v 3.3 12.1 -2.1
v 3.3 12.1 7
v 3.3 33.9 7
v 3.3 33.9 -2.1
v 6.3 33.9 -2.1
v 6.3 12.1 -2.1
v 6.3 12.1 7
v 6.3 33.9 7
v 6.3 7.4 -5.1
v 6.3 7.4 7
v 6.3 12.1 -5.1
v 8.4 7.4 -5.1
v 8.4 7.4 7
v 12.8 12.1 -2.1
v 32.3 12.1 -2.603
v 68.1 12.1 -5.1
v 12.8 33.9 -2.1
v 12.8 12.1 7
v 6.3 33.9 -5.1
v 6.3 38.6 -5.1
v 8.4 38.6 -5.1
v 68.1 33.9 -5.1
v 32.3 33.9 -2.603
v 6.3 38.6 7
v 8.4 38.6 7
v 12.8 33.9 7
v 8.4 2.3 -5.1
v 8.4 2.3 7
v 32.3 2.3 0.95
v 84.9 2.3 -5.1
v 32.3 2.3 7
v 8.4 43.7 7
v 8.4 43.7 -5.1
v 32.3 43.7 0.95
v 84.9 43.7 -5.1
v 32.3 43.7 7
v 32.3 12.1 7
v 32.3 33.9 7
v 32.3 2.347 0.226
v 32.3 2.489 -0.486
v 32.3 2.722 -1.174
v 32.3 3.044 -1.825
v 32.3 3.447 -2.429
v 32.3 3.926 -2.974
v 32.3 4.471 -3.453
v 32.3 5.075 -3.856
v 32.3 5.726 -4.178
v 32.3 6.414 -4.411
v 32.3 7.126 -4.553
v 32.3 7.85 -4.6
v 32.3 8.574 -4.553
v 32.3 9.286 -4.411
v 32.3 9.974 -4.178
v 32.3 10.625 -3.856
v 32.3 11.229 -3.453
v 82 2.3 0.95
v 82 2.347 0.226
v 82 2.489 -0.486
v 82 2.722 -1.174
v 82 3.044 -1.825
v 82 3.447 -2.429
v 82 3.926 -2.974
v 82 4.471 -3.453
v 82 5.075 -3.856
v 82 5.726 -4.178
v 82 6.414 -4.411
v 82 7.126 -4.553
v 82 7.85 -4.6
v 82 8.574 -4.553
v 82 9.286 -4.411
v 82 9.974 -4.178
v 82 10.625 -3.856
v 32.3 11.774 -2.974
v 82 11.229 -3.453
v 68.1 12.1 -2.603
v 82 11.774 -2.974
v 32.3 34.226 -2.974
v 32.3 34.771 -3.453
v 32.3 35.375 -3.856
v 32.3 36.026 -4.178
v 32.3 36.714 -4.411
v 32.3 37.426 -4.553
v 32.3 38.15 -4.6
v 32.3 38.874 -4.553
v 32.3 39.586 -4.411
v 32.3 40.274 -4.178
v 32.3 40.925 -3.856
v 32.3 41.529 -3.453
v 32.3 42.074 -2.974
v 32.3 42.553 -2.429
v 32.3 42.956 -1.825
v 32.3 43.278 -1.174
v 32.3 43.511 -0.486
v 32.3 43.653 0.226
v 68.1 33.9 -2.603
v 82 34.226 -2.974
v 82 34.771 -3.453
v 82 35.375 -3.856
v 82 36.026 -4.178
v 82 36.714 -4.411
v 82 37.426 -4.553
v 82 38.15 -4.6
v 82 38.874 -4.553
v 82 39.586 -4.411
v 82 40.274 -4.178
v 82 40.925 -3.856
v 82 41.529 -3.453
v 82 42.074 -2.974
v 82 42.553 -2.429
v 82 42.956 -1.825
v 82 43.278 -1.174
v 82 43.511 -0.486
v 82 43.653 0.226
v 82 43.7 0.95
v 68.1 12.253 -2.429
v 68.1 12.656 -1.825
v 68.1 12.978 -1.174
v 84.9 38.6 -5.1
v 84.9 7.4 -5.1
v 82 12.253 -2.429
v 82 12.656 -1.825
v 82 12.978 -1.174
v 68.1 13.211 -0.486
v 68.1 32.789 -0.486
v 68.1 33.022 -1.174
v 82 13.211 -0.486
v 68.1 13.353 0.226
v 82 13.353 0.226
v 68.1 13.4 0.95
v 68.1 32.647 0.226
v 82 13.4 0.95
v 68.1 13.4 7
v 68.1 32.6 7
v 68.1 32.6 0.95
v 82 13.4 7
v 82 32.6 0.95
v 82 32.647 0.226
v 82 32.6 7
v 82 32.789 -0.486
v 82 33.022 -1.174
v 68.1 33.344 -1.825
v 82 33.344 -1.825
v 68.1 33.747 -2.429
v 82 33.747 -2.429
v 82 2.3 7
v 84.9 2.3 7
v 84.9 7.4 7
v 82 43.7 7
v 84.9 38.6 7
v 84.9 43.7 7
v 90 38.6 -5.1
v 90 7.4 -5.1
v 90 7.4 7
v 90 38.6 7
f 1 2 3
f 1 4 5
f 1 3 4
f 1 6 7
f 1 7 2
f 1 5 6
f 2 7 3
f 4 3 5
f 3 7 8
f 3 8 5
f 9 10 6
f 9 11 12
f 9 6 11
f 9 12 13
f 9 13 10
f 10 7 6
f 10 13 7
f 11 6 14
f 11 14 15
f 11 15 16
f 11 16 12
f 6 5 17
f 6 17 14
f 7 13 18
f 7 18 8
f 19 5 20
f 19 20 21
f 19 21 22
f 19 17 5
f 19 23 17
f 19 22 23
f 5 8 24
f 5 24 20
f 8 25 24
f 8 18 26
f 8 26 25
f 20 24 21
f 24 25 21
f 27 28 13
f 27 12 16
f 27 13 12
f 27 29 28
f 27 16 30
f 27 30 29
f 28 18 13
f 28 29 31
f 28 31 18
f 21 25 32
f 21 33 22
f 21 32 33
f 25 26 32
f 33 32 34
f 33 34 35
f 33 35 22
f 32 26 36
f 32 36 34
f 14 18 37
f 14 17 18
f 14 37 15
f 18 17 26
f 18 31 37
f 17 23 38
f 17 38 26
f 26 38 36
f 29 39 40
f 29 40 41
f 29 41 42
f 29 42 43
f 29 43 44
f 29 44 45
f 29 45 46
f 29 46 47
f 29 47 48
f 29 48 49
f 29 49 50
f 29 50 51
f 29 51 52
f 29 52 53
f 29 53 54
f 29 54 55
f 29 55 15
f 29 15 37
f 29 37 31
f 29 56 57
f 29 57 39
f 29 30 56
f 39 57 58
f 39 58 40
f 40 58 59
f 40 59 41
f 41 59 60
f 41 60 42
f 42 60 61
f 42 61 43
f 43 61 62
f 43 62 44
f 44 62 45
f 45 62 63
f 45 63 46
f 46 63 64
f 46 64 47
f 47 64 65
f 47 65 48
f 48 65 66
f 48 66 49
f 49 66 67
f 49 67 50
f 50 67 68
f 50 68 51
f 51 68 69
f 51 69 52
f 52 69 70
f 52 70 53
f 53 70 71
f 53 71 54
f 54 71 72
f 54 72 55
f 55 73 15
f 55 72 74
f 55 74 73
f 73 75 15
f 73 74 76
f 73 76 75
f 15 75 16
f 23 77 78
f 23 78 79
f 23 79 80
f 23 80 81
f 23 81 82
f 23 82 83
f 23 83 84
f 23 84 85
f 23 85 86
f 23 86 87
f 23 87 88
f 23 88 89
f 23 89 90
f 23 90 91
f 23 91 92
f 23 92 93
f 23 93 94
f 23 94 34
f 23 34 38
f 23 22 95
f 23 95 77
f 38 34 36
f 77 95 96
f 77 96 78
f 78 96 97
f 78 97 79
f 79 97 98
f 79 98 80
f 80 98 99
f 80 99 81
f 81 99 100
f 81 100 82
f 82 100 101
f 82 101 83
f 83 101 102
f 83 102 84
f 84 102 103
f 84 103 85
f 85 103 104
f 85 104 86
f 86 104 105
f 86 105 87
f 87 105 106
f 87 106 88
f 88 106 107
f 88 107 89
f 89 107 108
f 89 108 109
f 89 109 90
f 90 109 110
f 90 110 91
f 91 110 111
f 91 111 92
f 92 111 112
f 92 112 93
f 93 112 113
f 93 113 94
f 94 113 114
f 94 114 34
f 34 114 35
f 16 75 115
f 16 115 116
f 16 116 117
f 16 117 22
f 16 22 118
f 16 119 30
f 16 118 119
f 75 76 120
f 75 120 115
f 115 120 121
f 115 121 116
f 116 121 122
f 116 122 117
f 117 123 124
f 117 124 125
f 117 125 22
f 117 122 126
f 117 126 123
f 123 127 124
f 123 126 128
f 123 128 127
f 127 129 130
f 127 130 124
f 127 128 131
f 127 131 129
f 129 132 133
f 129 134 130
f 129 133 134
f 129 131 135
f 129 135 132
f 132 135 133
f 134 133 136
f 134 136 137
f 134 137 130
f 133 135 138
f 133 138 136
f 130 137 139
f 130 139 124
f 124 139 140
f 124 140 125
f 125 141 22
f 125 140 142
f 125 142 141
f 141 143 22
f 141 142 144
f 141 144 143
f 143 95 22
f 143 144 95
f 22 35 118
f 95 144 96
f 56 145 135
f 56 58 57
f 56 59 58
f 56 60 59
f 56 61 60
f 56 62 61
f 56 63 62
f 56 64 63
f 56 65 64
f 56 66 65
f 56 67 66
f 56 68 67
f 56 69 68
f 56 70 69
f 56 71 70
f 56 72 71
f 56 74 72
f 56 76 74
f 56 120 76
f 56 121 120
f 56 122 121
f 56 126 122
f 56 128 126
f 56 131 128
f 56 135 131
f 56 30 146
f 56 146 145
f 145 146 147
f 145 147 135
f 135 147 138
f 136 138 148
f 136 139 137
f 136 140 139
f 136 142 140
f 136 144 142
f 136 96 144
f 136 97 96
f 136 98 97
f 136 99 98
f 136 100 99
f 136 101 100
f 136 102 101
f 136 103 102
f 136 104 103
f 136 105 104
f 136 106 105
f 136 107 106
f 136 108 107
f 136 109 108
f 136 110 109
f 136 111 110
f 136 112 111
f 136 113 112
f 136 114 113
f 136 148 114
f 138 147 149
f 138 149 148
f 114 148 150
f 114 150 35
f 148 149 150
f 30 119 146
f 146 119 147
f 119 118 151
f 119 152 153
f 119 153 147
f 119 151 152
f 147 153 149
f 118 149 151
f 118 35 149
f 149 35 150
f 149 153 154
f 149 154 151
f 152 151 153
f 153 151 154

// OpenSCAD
// Dilder Rev 2 "extended with joystick" — AAA CRADLE INSERT v1
//
// A drop-in plug shaped like the NEGATIVE SPACE of top-cover-windowed-
// screen-inlay-v3-2piece's interior. Slides up into the cover's mating
// bottom; top surface lands flush against the face-plate/display-back
// plane at cover-local z = 7 ("the plane of the screen face").
//
// Features carved INTO the plug:
//   - 3 mm-wide FPC gap on the -X (opposite-the-joystick) edge, full Y
//     and full Z, so the display's FPC cable can exit toward -X.
//   - 2 AAA cell indentations laid along X, stacked in Y, pushed to the
//     +X (joystick-side) end of the plug.
//   - Central rectangular cutout that lets the Pico W nest up against
//     the Waveshare's back, between the two AAA cells.
//
// Plug height is set by the AAA diameter (10.5 mm + 0.3 slop per side →
// 11.1 mm bay) rather than the cover's 7 mm inner cavity — so the plug
// is TALLER than the cover's cavity. Its top 7 mm slide into the cover
// cavity; the bottom 4.6 mm extends BELOW the cover mating plane, into
// the base's Pico-chamber region (Y = 12.1–33.9), which is open there.
//
// Export:
//   openscad -o aaa-cradle-insert-v1.3mf aaa-cradle-insert-v1.scad

$fn = 48;

// ============================================================
// Match the cover / base shell parameters
// ============================================================
enclosure_outer_width_along_x_axis_mm          = 91.5;
enclosure_outer_depth_along_y_axis_mm          = 46;
minus_x_end_wall_thickness_mm                  = 3.0;
plus_x_end_wall_thickness_mm                   = 1.2;
perimeter_long_side_wall_thickness_y_mm_base   = 2;
corner_pillar_square_side_length_mm            = 5;

// Cover cavity inner bounds (the space the plug fills)
cavity_inner_x_start_mm = minus_x_end_wall_thickness_mm;                         // = 3.0
cavity_inner_x_end_mm =
    enclosure_outer_width_along_x_axis_mm
      - plus_x_end_wall_thickness_mm;                                            // = 90.3
cavity_inner_y_start_mm = perimeter_long_side_wall_thickness_y_mm_base;          // = 2.0
cavity_inner_y_end_mm =
    enclosure_outer_depth_along_y_axis_mm
      - perimeter_long_side_wall_thickness_y_mm_base;                            // = 44.0

// Plug outer footprint = cavity − a tiny slide-in slop on every wall.
plug_wall_slop_mm                              = 0.3;
plug_x_start_mm = cavity_inner_x_start_mm + plug_wall_slop_mm;                   // = 3.3
plug_x_end_mm   = cavity_inner_x_end_mm   - plug_wall_slop_mm;                   // = 90.0
plug_y_start_mm = cavity_inner_y_start_mm + plug_wall_slop_mm;                   // = 2.3
plug_y_end_mm   = cavity_inner_y_end_mm   - plug_wall_slop_mm;                   // = 43.7

// ============================================================
// Plug Z — top meets the face-plate bottom (= display back = "plane of
// screen face"), bottom extends below cover mating bottom as needed to
// fully cradle the AAAs.
// ============================================================
face_plate_bottom_z_in_cover_local_mm          = 7;     // from cover-v3-2piece
aaa_cell_diameter_mm                           = 10.5;
aaa_cell_radial_slop_mm                        = 0.3;
aaa_bay_diameter_mm =
    aaa_cell_diameter_mm + 2 * aaa_cell_radial_slop_mm;  // = 11.1
aaa_bay_wall_above_and_below_mm                = 0.5;    // min wall at ±Z of cell

plug_thickness_mm =
    aaa_bay_diameter_mm + 2 * aaa_bay_wall_above_and_below_mm;  // = 12.1
plug_top_z_mm = face_plate_bottom_z_in_cover_local_mm;          // = 7
plug_bottom_z_mm = plug_top_z_mm - plug_thickness_mm;           // = -5.1 (extends
                                                                 // into base below)

// ============================================================
// AAA cells — 2 cells laying along X, stacked in Y, both pushed to
// +X (the joystick side). Cell-to-cell divider 1 mm thick.
// ============================================================
aaa_cell_length_mm                             = 44.5;
aaa_cell_axial_slop_mm                         = 1.0;
aaa_cell_contact_space_per_end_mm              = 2.0;
aaa_bay_length_along_x_mm =
    aaa_cell_length_mm
      + 2 * aaa_cell_contact_space_per_end_mm
      + aaa_cell_axial_slop_mm;                          // = 49.5

// +X end of the bay is pulled 3 mm -X past the +X corner-pillar
// cutout's -X edge, so the bays don't run into the pillar footprint.
plus_x_pillar_cutout_minus_x_edge_mm =
    (enclosure_outer_width_along_x_axis_mm
       - plus_x_end_wall_thickness_mm
       - corner_pillar_square_side_length_mm)
      - 0.4;                                                                      // = 84.9 (slop applied below)
aaa_bay_gap_from_pillar_cutout_mm              = 3.0;
aaa_bay_plus_x_end_mm =
    plus_x_pillar_cutout_minus_x_edge_mm
      - aaa_bay_gap_from_pillar_cutout_mm;                                         // = 81.9
aaa_bay_minus_x_start_mm =
    aaa_bay_plus_x_end_mm - aaa_bay_length_along_x_mm;                             // = 32.4

// Bays pushed apart until each cell's outer surface touches the plug's
// long-side edge. Cover / base inner wall provides +/-Y retention
// outside the plug.
aaa_bay_minus_y_center_y_mm =
    plug_y_start_mm + aaa_bay_diameter_mm / 2;                                     // = 7.85
aaa_bay_plus_y_center_y_mm =
    plug_y_end_mm - aaa_bay_diameter_mm / 2;                                       // = 38.15
aaa_bay_center_z_mm =
    (plug_top_z_mm + plug_bottom_z_mm) / 2;                                        // ≈ 0.95

// Top-open cut: the plug material from the cell's equator up through
// the plug top gets removed in each bay's XY bounding box, so the cell
// can be placed INTO the bay from above rather than slid in end-on.
aaa_bay_top_open_z_bottom_mm                   = aaa_bay_center_z_mm;
aaa_bay_top_open_z_top_mm                      = plug_top_z_mm + 0.1;

// ============================================================
// FPC gap — 3 mm of -X edge material shaved off, full Y, full plug Z,
// so the display's FPC cable can exit straight toward -X.
// ============================================================
fpc_gap_width_along_x_mm                       = 3;

// ============================================================
// Pico nest — central rectangular cutout from the TOP of the plug
// downward. Gives the Pico W somewhere to sit against the Waveshare's
// back (between the two AAA cells).
// ============================================================
pico_w_board_width_along_y_mm                  = 21.0;
// Pico nest length reduced 10 mm (from 51 to 41) so the middle block
// doesn't eat quite as far +X into the plug.
pico_w_board_length_along_x_mm                 = 61.0;
print_fit_tolerance_slop_mm                    = 0.4;
pico_nest_width_along_y_mm =
    pico_w_board_width_along_y_mm + 2 * print_fit_tolerance_slop_mm;              // = 21.8
pico_nest_length_along_x_mm =
    pico_w_board_length_along_x_mm + 2 * print_fit_tolerance_slop_mm;             // = 51.8
// Pico board + its tallest stacked components (headers) — full plug Z
// so the Pico nests all the way through vertically, free to sit against
// the Waveshare's back above and extend down toward the base below.
pico_nest_depth_along_z_mm                     = plug_thickness_mm;

// Pico nest is X-centered between the FPC gap and the AAA bays (so the
// Pico sits in the middle of the -X / +X extent of the plug).
pico_nest_x_region_start_mm =
    plug_x_start_mm + fpc_gap_width_along_x_mm;                                   // = 6.3
pico_nest_x_region_end_mm   = aaa_bay_minus_x_start_mm;                           // = 40.5
pico_nest_x_start_mm =
    (pico_nest_x_region_start_mm + pico_nest_x_region_end_mm) / 2
      - pico_nest_length_along_x_mm / 2;                                          // = -2.5 (overshoots)
// If the Pico's 51.8 mm footprint doesn't fit between the FPC gap end
// (x = 6.3) and the AAA bays' -X start (x = 40.5 → 34.2 mm of X), the
// nest gets clamped to start at the FPC gap end and extends as far +X
// as the board needs. The Pico ends up passing UNDER the AAA bays'
// footprint; since the bay pockets are higher in Z than the Pico nest
// bottom, that's fine — the Pico's -X end fills the plug's center and
// its +X end slides under the AAA bays.
pico_nest_x_start_clamped_mm =
    max(pico_nest_x_start_mm, pico_nest_x_region_start_mm);
pico_nest_y_start_mm =
    enclosure_outer_depth_along_y_axis_mm / 2
      - pico_nest_width_along_y_mm / 2;                                           // = 12.1

// ============================================================
// -X middle inset — a shallow pocket on the -X end of the plug's long
// axis, mirroring the Pico-nest footprint but only 9.5 mm long in X
// and 3 mm shorter in height than the full plug so it's a blind pocket
// rather than a through-slot. Opens from the top.
// ============================================================
minus_x_inset_length_along_x_mm                = 9.5;
minus_x_inset_height_reduction_from_plug_mm    = 3.0;
minus_x_inset_depth_along_z_mm =
    plug_thickness_mm - minus_x_inset_height_reduction_from_plug_mm;               // = 9.1
minus_x_inset_x_start_mm                       = plug_x_start_mm;                  // = 3.3
minus_x_inset_x_end_mm =
    minus_x_inset_x_start_mm + minus_x_inset_length_along_x_mm;                    // = 12.8
minus_x_inset_y_start_mm                       = pico_nest_y_start_mm;             // = 12.1
minus_x_inset_y_end_mm =
    minus_x_inset_y_start_mm + pico_nest_width_along_y_mm;                         // = 33.9
minus_x_inset_z_top_mm                         = plug_top_z_mm;                    // = 7.0
minus_x_inset_z_bottom_mm =
    minus_x_inset_z_top_mm - minus_x_inset_depth_along_z_mm;                       // = -2.1

// ============================================================
// Connecting block — solid material ADDED on the +X edge of the -X
// inset (the edge opposite the plug edge closest to the origin).
// Bridges the -X inset region into the rest of the plug, filling part
// of the Pico-nest footprint back in. Same Y band and Z depth as the
// -X inset; 9.5 mm long in X; 9.1 mm tall (3 mm shorter than full
// plug Z), so it leaves a 3 mm gap below the block inside the Pico
// nest (a small cable-pass channel at the bottom).
// ============================================================
connecting_block_length_along_x_mm             = 9.5;
connecting_block_height_reduction_from_plug_mm = 3.0;
connecting_block_height_along_z_mm =
    plug_thickness_mm - connecting_block_height_reduction_from_plug_mm;            // = 9.1
// Block placed AT the -X inset's short side closest to the origin
// (the inset's -X face at X=3.3). Block X range matches the inset's
// X range so the block fills the inset with solid material from
// the -X side.
connecting_block_x_start_mm                    = minus_x_inset_x_start_mm;         // = 3.3
connecting_block_x_end_mm =
    connecting_block_x_start_mm + connecting_block_length_along_x_mm;              // = 12.8
connecting_block_y_start_mm                    = minus_x_inset_y_start_mm;         // = 12.1
connecting_block_y_end_mm                      = minus_x_inset_y_end_mm;           // = 33.9
connecting_block_z_top_mm                      = plug_top_z_mm;                    // = 7.0
connecting_block_z_bottom_mm =
    connecting_block_z_top_mm - connecting_block_height_along_z_mm;                // = -2.1

// ============================================================
// Corner pillar cutouts — plug wraps around the cover's 4 corner
// pillars. Cut generously so the plug doesn't bind on pillars during
// slide-in.
// ============================================================
corner_pillar_cutout_slop_mm                   = 0.4;
corner_pillar_cutout_xy_positions = [
    [minus_x_end_wall_thickness_mm,
     perimeter_long_side_wall_thickness_y_mm_base],
    [enclosure_outer_width_along_x_axis_mm
       - plus_x_end_wall_thickness_mm
       - corner_pillar_square_side_length_mm,
     perimeter_long_side_wall_thickness_y_mm_base],
    [minus_x_end_wall_thickness_mm,
     enclosure_outer_depth_along_y_axis_mm
       - perimeter_long_side_wall_thickness_y_mm_base
       - corner_pillar_square_side_length_mm],
    [enclosure_outer_width_along_x_axis_mm
       - plus_x_end_wall_thickness_mm
       - corner_pillar_square_side_length_mm,
     enclosure_outer_depth_along_y_axis_mm
       - perimeter_long_side_wall_thickness_y_mm_base
       - corner_pillar_square_side_length_mm],
];


// ========== AAA cradle insert ==========

module aaa_cradle_insert() {
    union() {
    difference() {
        // Main plug body
        translate([plug_x_start_mm, plug_y_start_mm, plug_bottom_z_mm])
            cube([plug_x_end_mm - plug_x_start_mm,
                  plug_y_end_mm - plug_y_start_mm,
                  plug_thickness_mm]);

        // Corner pillar cutouts (4)
        for (xy = corner_pillar_cutout_xy_positions) {
            translate([xy[0] - corner_pillar_cutout_slop_mm,
                       xy[1] - corner_pillar_cutout_slop_mm,
                       plug_bottom_z_mm - 0.1])
                cube([corner_pillar_square_side_length_mm + 2 * corner_pillar_cutout_slop_mm,
                      corner_pillar_square_side_length_mm + 2 * corner_pillar_cutout_slop_mm,
                      plug_thickness_mm + 0.2]);
        }

        // FPC gap — shave 3 mm off the -X edge, full Y, full plug Z.
        translate([plug_x_start_mm - 0.1,
                   plug_y_start_mm - 0.1,
                   plug_bottom_z_mm - 0.1])
            cube([fpc_gap_width_along_x_mm + 0.1,
                  plug_y_end_mm - plug_y_start_mm + 0.2,
                  plug_thickness_mm + 0.2]);

        // AAA cell bays — horizontal cylinders forming the bottom-half
        // trough each cell sits in. Each cell's bay is paired with a
        // top-open cut above (removes plug material from the cell's
        // equator up through the plug top) so the cell drops in from
        // above. -Y bay and +Y bay are pushed apart so each cell is
        // flush with the plug's long-side edge.
        for (bay_y_center_mm = [aaa_bay_minus_y_center_y_mm,
                                aaa_bay_plus_y_center_y_mm]) {
            // Cylinder cut (forms the full bay tunnel; top half gets
            // joined by the rectangular top-open cut below).
            translate([aaa_bay_minus_x_start_mm - 0.1,
                       bay_y_center_mm,
                       aaa_bay_center_z_mm])
                rotate([0, 90, 0])
                    cylinder(h = aaa_bay_length_along_x_mm + 0.2,
                             d = aaa_bay_diameter_mm);

            // Top-open rectangular cut — spans the bay's XY bounding
            // box, from the cell's equator up to the plug top.
            bay_y_start_mm = bay_y_center_mm - aaa_bay_diameter_mm / 2;
            translate([aaa_bay_minus_x_start_mm - 0.1,
                       bay_y_start_mm,
                       aaa_bay_top_open_z_bottom_mm])
                cube([aaa_bay_length_along_x_mm + 0.2,
                      aaa_bay_diameter_mm,
                      aaa_bay_top_open_z_top_mm - aaa_bay_top_open_z_bottom_mm]);
        }

        // Pico nest — central rectangular through-slot (full plug Z),
        // between the two AAA bays in Y, starting past the FPC gap in X.
        translate([pico_nest_x_start_clamped_mm,
                   pico_nest_y_start_mm,
                   plug_bottom_z_mm - 0.1])
            cube([pico_nest_length_along_x_mm,
                  pico_nest_width_along_y_mm,
                  plug_thickness_mm + 0.2]);

        // -X middle inset — 9.5 mm long pocket opening from the top of
        // the plug, on the -X end of the plug's long axis. 3 mm
        // shallower than the full plug (blind pocket, not through).
        translate([minus_x_inset_x_start_mm,
                   minus_x_inset_y_start_mm,
                   minus_x_inset_z_bottom_mm])
            cube([minus_x_inset_x_end_mm - minus_x_inset_x_start_mm,
                  minus_x_inset_y_end_mm - minus_x_inset_y_start_mm,
                  minus_x_inset_z_top_mm - minus_x_inset_z_bottom_mm + 0.1]);
    }

    // Connecting block — added AFTER the cuts so it survives inside
    // the Pico nest's footprint. Sits on the +X edge of the -X inset
    // and bridges the inset region into the rest of the plug.
    translate([connecting_block_x_start_mm,
               connecting_block_y_start_mm,
               connecting_block_z_bottom_mm])
        cube([connecting_block_x_end_mm - connecting_block_x_start_mm,
              connecting_block_y_end_mm - connecting_block_y_start_mm,
              connecting_block_z_top_mm - connecting_block_z_bottom_mm]);
    }
}

aaa_cradle_insert();
